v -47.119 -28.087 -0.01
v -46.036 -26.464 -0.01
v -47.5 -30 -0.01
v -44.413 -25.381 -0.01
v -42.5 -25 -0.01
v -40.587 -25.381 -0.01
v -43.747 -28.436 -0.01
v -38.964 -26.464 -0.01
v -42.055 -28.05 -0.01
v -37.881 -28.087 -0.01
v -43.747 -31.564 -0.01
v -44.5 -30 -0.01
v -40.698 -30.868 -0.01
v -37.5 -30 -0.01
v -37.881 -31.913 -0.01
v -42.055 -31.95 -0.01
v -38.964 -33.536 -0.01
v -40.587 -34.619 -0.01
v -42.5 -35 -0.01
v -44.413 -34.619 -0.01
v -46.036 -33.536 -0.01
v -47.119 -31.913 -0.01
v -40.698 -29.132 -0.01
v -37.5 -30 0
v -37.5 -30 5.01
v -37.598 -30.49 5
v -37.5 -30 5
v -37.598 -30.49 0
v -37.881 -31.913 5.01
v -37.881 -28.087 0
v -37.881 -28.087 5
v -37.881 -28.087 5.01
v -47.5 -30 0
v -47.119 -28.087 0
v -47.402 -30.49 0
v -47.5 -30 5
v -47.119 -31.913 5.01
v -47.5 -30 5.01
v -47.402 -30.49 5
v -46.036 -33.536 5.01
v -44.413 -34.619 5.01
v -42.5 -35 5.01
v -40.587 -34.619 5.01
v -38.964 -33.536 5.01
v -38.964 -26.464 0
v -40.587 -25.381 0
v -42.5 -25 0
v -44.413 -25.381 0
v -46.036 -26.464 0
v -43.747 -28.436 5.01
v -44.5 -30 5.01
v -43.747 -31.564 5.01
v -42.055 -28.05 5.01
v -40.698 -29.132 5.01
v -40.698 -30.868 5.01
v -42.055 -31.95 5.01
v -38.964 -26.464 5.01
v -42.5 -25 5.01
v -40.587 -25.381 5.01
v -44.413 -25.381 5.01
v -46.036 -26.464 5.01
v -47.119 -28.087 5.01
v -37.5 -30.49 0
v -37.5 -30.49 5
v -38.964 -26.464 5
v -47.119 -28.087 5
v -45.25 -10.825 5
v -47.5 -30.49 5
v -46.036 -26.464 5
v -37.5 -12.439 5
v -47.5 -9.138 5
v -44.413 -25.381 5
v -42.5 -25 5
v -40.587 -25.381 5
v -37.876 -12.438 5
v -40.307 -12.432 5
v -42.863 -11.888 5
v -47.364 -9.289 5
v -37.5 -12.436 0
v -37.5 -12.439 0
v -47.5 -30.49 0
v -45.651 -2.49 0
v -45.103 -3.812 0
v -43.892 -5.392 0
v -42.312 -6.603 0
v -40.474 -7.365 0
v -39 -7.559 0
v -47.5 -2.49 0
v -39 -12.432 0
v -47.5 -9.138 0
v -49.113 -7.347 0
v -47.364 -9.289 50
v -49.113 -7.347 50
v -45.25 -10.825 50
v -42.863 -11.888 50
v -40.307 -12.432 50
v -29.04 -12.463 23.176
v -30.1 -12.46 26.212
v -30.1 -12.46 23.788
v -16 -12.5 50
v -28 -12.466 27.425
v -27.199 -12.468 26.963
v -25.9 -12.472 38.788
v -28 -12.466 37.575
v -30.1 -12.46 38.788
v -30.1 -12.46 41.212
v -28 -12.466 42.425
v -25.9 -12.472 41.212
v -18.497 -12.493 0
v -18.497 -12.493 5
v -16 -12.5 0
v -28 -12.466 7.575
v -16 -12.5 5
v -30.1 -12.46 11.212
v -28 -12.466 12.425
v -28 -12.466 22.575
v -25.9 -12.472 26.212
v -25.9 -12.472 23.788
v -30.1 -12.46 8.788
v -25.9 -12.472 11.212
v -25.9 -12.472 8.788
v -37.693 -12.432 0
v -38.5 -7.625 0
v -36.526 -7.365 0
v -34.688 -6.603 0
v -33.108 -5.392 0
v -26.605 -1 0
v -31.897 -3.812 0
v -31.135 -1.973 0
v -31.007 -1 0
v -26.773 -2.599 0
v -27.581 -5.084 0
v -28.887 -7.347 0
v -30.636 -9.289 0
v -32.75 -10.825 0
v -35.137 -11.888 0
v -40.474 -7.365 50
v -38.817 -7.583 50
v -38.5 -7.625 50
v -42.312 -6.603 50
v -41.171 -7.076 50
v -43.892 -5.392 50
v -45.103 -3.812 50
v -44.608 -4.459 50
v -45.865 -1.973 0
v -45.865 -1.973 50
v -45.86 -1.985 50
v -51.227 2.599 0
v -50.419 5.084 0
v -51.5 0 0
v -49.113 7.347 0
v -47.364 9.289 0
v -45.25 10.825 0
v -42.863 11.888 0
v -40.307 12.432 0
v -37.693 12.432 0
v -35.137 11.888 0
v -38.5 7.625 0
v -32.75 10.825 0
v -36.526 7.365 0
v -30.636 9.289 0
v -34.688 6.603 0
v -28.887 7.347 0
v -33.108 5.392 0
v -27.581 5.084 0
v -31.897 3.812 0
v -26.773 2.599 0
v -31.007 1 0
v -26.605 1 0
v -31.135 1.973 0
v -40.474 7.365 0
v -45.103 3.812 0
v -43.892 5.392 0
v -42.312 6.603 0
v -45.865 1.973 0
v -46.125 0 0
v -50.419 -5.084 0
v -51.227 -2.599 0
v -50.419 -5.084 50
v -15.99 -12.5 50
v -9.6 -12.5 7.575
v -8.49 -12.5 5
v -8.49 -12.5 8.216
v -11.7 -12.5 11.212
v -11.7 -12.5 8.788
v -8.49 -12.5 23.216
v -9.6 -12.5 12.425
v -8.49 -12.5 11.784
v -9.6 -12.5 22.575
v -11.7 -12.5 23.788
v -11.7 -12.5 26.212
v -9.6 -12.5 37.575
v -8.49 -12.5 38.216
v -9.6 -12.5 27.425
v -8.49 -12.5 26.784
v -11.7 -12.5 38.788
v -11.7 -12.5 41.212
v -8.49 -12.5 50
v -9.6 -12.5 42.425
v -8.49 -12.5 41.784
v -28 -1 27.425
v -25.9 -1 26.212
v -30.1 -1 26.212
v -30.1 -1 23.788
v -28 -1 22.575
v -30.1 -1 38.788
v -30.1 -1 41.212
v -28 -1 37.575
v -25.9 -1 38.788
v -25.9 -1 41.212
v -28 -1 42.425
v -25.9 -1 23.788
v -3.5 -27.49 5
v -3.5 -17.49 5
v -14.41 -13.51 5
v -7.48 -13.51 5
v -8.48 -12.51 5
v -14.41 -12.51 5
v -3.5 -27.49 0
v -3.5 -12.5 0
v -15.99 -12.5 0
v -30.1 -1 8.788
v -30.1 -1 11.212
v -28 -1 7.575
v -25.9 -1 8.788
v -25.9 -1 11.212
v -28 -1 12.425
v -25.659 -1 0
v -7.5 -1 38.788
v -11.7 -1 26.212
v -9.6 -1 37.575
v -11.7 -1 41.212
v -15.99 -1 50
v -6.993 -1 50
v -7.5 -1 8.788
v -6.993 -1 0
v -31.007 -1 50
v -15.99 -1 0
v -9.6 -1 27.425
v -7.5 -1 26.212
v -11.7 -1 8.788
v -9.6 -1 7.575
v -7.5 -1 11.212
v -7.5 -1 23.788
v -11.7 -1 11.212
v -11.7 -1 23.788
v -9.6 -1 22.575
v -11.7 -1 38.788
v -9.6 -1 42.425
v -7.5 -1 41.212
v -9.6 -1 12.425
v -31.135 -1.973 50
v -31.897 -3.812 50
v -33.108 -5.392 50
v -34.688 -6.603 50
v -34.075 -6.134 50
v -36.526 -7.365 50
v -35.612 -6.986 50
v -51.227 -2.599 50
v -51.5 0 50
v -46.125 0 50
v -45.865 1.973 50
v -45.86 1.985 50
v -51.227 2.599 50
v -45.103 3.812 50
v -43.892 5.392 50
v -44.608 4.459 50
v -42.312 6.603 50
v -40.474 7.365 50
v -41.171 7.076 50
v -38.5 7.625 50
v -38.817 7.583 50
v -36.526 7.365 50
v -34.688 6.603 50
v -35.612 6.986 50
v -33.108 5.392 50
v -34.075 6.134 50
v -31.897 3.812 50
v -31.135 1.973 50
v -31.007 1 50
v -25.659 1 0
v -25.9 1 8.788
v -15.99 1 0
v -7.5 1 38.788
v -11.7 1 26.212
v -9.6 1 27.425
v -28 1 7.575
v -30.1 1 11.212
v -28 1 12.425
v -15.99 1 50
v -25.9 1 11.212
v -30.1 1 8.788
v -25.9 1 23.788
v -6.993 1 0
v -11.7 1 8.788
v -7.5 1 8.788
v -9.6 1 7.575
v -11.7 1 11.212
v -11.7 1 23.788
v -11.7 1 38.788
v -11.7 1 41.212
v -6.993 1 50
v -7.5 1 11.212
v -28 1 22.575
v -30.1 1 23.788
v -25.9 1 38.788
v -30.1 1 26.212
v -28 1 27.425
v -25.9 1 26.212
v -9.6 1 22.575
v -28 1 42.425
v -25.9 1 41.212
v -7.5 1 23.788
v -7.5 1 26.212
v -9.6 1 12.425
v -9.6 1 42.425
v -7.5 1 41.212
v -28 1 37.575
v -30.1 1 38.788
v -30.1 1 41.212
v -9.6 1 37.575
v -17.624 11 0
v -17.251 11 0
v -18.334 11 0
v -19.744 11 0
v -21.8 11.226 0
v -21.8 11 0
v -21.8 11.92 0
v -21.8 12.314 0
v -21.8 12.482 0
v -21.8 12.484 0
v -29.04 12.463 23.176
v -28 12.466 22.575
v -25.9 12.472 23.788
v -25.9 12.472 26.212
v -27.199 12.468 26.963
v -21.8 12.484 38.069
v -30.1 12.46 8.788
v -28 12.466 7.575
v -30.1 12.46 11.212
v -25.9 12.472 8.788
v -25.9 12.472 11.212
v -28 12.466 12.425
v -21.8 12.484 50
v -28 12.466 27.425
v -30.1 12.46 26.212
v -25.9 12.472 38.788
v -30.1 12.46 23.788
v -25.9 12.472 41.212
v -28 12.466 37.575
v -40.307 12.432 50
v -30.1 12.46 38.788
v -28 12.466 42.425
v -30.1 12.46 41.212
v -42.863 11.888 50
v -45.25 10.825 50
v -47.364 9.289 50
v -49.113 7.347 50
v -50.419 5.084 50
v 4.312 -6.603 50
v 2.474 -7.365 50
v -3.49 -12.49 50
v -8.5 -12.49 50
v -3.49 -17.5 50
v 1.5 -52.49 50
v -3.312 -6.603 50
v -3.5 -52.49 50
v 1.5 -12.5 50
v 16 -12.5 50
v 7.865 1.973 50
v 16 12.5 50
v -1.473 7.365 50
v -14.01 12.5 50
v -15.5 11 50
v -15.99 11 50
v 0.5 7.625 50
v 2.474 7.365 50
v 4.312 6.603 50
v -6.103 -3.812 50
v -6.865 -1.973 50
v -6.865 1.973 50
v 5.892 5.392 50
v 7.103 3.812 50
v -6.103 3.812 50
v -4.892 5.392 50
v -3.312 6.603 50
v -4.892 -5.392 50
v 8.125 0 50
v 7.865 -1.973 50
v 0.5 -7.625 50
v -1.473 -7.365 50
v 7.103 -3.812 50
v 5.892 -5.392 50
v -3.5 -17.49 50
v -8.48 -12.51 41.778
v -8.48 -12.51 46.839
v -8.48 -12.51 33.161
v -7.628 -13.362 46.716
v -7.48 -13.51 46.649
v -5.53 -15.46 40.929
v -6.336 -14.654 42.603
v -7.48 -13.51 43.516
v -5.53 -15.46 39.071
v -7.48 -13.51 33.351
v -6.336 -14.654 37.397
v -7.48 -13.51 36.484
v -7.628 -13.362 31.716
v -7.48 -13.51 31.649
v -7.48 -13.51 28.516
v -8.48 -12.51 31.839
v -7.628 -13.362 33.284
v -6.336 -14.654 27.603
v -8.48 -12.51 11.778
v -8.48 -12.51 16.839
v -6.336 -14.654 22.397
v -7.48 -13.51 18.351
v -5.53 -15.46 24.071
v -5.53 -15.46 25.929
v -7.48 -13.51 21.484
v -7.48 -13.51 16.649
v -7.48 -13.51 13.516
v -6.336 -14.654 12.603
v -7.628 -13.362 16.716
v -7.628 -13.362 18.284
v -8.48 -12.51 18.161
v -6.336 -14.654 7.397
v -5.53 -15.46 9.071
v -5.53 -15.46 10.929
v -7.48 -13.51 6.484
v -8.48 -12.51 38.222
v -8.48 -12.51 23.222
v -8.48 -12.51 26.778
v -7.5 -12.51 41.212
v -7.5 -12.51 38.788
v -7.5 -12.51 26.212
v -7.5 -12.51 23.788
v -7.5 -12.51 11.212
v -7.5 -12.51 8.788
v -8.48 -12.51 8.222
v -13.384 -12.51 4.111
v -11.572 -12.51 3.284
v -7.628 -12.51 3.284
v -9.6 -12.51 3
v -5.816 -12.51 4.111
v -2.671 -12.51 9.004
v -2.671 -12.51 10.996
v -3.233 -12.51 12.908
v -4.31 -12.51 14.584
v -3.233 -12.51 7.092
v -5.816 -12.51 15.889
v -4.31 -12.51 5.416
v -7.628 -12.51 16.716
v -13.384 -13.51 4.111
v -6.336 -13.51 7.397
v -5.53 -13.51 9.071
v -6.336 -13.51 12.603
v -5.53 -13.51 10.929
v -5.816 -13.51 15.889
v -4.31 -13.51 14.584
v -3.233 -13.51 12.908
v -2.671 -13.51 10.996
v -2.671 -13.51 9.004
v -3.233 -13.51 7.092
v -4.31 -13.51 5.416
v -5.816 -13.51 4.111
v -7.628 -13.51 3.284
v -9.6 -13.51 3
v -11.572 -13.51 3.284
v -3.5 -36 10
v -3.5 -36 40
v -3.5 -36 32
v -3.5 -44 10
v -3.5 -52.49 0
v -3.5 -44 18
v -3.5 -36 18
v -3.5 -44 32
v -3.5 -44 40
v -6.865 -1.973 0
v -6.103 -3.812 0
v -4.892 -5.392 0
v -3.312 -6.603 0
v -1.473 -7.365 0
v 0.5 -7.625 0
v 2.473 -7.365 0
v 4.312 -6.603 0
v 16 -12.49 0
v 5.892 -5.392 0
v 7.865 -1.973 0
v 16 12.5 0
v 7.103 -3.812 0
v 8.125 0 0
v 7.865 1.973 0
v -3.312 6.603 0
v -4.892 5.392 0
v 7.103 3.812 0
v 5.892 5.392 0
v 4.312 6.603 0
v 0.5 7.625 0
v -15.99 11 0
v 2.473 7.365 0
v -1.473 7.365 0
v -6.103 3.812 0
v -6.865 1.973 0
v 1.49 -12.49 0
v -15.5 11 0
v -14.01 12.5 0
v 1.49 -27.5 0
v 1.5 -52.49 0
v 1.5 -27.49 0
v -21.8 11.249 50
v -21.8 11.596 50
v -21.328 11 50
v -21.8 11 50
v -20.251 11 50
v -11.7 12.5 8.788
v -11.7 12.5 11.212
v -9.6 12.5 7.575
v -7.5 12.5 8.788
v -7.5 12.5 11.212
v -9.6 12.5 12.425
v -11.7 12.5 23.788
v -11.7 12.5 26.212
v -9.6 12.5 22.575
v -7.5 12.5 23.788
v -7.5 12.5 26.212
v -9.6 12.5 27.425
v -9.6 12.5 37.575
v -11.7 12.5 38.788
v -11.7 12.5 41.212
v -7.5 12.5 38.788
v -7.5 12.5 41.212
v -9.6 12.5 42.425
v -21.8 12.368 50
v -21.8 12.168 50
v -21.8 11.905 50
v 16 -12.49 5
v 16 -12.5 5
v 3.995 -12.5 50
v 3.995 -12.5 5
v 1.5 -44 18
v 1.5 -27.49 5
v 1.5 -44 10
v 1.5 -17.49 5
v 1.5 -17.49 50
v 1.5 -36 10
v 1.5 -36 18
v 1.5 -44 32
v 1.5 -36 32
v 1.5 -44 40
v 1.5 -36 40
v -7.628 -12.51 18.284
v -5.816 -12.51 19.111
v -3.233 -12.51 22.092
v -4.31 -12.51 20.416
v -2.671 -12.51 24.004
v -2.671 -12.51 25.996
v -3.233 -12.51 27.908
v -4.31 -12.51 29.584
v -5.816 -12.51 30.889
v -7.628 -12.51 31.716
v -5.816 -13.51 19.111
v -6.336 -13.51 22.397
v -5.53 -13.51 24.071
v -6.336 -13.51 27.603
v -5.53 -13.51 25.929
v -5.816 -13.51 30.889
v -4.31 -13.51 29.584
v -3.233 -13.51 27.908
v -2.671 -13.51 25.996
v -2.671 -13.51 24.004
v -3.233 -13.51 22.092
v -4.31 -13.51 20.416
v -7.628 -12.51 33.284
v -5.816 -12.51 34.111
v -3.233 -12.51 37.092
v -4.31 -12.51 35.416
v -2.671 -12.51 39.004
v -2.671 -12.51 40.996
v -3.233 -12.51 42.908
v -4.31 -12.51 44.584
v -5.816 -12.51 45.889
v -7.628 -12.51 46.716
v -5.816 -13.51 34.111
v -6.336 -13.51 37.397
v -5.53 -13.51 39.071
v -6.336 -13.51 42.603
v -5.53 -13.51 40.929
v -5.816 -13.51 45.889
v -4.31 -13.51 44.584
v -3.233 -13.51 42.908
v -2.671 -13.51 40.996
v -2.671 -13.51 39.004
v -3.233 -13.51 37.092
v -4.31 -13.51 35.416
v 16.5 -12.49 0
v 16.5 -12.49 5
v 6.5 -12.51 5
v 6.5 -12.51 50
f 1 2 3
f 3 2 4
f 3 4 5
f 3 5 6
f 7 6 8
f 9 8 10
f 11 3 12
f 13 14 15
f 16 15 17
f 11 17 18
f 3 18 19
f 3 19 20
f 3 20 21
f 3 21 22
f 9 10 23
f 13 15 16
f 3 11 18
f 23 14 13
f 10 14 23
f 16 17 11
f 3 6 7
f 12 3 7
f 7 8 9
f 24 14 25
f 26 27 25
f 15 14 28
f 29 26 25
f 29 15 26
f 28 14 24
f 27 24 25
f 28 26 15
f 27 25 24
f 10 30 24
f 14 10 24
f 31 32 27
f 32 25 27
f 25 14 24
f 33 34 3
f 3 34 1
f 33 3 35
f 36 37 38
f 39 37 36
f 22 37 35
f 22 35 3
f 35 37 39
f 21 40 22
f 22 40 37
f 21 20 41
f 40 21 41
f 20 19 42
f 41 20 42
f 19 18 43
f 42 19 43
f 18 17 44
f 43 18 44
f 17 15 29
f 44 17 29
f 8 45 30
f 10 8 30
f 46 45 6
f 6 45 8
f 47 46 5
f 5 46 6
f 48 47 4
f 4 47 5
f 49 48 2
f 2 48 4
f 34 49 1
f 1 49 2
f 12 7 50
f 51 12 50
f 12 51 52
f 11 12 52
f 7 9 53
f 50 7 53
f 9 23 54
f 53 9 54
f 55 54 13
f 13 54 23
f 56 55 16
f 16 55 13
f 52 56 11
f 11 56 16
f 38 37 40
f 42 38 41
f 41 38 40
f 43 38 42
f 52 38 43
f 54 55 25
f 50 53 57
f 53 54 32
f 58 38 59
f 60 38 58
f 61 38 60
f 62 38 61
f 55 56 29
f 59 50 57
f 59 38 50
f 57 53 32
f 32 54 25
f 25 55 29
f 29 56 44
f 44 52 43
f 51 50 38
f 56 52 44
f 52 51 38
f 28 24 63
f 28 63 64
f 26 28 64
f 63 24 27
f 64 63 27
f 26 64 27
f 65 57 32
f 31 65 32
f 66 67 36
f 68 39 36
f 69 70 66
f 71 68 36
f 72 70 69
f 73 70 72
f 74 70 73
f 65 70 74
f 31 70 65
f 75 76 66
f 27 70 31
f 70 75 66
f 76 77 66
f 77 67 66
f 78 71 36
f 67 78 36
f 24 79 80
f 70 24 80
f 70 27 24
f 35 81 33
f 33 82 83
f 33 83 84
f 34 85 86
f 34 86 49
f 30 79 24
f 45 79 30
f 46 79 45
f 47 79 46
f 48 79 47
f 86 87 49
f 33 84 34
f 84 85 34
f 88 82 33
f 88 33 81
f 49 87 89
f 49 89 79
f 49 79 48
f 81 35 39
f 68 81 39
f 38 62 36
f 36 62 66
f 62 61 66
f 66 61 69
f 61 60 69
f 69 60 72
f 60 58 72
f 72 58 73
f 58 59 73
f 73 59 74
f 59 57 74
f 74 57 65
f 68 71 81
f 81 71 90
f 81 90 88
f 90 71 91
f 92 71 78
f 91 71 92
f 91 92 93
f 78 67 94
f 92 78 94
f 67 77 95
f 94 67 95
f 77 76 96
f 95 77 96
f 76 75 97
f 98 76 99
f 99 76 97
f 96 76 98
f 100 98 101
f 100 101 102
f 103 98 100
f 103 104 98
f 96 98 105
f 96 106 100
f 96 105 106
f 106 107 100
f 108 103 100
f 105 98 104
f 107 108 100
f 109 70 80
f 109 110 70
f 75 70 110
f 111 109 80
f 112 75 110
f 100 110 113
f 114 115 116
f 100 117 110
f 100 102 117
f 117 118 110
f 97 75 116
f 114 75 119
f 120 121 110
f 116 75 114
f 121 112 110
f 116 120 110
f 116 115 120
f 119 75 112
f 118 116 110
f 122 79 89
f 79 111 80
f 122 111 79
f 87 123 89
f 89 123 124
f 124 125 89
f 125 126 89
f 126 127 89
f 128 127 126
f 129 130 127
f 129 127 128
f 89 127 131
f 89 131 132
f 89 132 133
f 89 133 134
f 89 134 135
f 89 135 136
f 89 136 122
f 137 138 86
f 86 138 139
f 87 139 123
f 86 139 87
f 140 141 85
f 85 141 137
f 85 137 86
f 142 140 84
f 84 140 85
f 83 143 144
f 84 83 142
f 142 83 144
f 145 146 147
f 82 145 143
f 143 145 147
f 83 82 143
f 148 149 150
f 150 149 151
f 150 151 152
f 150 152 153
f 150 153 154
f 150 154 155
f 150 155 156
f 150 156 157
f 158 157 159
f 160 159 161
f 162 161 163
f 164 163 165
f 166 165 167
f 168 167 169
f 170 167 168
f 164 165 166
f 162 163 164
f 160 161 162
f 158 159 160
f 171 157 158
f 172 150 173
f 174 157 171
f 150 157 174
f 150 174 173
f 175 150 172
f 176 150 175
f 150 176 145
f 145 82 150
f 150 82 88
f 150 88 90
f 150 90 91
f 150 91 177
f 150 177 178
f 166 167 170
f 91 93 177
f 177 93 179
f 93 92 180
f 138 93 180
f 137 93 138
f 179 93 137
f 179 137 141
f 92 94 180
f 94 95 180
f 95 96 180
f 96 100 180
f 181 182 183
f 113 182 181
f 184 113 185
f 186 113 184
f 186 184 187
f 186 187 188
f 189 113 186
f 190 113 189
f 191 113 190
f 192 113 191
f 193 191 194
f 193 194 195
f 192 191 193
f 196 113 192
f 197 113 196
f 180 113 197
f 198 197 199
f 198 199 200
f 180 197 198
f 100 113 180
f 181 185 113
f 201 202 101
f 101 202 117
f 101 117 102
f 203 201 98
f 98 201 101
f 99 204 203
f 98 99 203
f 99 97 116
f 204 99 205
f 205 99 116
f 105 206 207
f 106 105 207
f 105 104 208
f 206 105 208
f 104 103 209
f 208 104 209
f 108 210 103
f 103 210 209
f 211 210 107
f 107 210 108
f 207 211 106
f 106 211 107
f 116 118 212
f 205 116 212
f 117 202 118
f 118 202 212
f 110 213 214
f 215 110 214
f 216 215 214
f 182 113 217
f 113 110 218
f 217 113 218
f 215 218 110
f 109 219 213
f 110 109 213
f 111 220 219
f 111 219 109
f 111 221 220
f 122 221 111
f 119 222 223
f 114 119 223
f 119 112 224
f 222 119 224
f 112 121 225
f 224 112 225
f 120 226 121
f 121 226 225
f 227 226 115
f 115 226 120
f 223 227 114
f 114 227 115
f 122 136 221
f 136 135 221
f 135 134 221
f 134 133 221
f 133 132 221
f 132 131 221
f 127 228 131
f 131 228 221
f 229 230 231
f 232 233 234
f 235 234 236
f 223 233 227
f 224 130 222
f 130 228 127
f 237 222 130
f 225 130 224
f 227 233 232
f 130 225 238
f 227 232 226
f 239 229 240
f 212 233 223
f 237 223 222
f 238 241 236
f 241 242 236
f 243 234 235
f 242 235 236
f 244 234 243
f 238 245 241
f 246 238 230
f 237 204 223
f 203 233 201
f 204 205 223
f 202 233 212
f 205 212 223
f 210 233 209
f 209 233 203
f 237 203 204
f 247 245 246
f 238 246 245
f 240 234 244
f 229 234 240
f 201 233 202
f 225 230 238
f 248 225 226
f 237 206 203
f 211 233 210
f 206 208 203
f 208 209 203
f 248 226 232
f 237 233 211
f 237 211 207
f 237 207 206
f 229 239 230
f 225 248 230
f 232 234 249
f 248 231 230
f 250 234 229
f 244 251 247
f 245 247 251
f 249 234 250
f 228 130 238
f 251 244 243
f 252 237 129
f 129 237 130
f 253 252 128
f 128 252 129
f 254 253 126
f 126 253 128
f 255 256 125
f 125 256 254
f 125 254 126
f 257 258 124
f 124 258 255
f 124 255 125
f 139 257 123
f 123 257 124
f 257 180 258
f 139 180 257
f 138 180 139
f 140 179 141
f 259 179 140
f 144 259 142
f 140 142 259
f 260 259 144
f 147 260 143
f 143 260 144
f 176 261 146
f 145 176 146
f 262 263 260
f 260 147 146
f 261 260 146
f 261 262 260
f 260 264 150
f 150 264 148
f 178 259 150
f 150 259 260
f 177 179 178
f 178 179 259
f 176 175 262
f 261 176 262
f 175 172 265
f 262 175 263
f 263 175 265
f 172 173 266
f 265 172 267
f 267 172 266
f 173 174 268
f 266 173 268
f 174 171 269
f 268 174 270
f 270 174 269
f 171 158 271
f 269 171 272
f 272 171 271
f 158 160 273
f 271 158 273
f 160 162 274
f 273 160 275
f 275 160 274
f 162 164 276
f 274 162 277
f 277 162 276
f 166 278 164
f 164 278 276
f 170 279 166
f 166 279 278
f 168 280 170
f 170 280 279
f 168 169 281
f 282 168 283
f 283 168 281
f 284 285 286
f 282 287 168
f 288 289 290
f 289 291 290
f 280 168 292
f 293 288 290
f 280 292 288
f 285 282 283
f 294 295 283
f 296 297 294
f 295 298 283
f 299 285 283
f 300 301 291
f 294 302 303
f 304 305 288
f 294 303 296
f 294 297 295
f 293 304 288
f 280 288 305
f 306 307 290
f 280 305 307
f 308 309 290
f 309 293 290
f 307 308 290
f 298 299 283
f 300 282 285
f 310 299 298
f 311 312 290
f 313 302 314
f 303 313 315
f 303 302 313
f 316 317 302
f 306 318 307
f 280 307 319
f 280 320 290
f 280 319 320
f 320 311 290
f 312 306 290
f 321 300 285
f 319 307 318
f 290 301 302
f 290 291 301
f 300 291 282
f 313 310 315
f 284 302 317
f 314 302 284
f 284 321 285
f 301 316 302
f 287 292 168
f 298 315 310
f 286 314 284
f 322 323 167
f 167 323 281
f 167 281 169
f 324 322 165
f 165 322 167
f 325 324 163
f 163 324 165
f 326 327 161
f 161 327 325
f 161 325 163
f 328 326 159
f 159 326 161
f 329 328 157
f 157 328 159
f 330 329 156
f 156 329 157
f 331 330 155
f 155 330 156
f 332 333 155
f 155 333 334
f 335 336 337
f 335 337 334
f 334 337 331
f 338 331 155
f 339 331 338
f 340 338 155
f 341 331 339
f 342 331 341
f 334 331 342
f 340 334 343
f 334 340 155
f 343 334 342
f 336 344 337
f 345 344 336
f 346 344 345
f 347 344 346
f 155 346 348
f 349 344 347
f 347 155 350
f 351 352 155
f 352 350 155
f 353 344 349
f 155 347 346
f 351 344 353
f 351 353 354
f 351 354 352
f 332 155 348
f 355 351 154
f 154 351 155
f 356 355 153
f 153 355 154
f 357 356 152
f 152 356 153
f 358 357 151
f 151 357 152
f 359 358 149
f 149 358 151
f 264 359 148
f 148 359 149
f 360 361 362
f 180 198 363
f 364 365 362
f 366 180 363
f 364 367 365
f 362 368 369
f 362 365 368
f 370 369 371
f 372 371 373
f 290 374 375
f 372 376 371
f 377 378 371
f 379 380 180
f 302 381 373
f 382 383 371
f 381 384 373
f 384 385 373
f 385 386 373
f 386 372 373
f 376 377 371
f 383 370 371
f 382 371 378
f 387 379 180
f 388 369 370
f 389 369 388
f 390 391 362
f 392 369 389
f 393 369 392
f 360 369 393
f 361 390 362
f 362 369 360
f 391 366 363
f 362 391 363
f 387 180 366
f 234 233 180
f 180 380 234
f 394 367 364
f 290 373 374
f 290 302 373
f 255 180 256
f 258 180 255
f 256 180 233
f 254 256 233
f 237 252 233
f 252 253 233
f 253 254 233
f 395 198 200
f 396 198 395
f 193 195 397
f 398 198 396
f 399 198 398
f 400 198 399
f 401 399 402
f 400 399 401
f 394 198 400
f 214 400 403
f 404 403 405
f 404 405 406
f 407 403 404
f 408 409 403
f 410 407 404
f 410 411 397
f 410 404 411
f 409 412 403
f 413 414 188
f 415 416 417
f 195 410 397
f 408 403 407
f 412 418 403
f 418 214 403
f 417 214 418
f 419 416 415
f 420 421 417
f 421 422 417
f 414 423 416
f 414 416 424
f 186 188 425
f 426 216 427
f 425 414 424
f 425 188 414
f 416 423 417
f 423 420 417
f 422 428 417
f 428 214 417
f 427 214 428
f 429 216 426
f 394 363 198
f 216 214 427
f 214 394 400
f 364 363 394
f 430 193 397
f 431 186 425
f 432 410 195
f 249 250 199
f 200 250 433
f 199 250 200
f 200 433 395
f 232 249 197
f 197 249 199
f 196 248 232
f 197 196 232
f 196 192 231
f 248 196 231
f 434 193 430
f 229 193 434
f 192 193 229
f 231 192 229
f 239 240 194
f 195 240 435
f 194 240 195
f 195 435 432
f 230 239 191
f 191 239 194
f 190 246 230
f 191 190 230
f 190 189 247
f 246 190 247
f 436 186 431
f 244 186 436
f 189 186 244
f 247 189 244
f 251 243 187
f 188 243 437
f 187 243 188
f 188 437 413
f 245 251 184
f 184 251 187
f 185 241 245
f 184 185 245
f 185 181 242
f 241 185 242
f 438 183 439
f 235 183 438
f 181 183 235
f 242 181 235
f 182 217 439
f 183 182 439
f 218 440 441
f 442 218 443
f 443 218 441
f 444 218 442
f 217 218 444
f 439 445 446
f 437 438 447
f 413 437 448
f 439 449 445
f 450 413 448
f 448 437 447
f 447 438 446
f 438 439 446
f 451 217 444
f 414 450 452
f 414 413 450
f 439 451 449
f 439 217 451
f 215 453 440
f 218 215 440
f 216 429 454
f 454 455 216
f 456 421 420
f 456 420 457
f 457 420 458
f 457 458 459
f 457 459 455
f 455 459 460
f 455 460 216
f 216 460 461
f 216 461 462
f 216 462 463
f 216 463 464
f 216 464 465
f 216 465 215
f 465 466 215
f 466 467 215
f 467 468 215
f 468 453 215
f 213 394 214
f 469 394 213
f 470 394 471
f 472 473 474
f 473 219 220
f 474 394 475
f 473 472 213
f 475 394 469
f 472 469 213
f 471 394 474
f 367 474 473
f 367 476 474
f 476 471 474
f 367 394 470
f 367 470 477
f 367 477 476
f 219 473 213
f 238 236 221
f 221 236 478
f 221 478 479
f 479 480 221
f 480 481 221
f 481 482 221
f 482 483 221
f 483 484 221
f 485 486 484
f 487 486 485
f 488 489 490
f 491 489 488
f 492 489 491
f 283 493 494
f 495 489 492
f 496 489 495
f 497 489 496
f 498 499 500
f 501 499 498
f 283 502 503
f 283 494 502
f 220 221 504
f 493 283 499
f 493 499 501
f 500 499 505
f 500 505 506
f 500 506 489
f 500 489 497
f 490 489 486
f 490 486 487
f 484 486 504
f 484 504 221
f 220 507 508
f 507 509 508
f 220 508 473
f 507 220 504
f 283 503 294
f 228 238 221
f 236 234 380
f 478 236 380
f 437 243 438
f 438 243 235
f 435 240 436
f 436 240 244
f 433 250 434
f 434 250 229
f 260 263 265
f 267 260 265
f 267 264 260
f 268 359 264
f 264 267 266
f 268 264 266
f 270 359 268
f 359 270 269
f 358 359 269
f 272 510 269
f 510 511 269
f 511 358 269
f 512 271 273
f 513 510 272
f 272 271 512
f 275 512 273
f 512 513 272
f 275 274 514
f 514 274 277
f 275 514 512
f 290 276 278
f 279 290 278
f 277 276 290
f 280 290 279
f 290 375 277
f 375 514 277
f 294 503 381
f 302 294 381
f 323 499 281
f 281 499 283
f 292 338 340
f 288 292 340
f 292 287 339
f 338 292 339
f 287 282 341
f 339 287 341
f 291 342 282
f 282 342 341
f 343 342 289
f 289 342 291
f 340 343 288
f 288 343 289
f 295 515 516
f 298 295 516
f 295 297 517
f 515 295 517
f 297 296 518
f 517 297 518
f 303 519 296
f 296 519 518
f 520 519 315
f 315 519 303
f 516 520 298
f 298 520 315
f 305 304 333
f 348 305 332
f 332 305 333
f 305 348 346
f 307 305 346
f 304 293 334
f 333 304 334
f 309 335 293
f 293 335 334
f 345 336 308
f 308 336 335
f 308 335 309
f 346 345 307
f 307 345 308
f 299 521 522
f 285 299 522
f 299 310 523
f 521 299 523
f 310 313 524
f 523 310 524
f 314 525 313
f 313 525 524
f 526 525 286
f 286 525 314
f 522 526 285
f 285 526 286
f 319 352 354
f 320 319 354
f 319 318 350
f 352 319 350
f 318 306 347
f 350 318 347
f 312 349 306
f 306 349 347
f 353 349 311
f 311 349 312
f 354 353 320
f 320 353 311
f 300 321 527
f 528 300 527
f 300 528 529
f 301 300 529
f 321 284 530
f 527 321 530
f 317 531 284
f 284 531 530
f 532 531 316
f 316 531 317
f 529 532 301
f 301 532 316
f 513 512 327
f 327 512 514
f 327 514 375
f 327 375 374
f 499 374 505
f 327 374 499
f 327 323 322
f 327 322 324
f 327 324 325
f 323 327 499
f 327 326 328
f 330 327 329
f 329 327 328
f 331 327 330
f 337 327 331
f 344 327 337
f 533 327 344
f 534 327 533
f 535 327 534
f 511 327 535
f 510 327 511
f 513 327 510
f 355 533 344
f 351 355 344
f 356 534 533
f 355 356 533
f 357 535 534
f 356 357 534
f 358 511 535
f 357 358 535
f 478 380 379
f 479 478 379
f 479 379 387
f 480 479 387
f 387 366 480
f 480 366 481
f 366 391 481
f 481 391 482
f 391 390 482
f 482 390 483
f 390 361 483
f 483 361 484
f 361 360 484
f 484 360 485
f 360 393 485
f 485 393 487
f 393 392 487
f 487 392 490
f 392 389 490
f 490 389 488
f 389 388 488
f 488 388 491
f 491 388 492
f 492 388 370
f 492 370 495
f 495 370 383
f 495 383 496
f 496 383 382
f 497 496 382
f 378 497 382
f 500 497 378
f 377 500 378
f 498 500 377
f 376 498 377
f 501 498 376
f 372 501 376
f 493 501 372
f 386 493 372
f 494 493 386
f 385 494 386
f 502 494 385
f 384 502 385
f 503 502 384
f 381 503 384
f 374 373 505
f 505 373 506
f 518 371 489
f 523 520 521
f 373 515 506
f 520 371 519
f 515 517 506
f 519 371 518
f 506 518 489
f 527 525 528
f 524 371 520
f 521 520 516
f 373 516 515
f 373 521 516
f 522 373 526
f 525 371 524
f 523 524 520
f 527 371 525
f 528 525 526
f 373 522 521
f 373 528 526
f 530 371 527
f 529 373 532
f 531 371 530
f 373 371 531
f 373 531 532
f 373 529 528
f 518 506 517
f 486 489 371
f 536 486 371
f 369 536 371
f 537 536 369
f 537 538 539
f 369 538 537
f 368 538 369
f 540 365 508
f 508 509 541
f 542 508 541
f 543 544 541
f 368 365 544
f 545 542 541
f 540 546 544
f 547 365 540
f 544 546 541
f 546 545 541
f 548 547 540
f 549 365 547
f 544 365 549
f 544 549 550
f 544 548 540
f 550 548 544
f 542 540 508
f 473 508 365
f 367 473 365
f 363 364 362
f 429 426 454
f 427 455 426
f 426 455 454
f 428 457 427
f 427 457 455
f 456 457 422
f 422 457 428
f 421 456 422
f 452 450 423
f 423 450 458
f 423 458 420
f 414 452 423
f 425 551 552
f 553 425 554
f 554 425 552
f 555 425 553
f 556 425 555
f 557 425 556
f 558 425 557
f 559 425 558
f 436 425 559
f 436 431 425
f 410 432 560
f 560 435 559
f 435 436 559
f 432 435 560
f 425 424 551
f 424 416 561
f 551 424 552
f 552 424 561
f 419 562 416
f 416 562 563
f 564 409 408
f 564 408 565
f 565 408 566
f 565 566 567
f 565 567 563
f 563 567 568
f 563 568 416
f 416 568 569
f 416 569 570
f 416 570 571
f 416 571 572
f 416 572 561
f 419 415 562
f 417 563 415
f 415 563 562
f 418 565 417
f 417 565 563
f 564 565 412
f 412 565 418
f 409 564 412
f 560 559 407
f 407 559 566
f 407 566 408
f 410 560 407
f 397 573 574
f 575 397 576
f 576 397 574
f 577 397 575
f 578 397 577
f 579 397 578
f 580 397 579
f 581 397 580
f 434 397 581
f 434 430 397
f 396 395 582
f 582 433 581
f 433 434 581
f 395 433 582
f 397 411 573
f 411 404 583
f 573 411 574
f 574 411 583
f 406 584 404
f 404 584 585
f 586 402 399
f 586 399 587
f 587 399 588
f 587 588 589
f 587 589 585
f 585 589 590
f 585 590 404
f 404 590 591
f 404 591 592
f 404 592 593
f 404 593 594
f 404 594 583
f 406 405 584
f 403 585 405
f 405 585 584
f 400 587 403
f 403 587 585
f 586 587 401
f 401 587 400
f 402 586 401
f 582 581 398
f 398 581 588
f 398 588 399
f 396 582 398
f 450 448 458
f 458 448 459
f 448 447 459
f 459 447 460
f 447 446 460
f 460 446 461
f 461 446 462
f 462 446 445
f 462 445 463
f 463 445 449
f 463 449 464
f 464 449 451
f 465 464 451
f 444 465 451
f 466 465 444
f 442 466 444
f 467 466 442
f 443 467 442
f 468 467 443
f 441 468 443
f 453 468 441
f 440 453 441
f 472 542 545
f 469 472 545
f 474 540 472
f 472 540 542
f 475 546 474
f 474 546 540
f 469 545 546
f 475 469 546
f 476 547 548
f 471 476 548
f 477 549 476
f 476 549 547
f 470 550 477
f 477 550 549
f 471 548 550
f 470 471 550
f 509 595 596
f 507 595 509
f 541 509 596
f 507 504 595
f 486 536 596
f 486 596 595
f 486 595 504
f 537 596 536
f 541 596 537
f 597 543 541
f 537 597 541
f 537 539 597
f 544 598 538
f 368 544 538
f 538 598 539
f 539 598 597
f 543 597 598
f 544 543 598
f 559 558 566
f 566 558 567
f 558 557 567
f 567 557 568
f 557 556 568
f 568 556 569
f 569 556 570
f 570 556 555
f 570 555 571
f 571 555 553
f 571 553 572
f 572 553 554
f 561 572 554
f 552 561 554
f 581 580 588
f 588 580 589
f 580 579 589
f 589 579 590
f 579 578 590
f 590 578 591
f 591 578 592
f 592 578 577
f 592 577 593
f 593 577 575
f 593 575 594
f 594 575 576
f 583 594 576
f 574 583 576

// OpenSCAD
//**************************************************
// Quick-Fit carriage for Printrbot
//
// Copyright (c) 2012, Andrew Dalgleish <andrew+github@ajd.net.au>
// Copyright (c) 2013, Mathieu Brun 
//
// Permission to use, copy, modify, and/or distribute this software for any
// purpose with or without fee is hereby granted, provided that the above
// copyright notice and this permission notice appear in all copies.
// 
// THE SOFTWARE IS PROVIDED "AS IS" AND THE AUTHOR DISCLAIMS ALL WARRANTIES
// WITH REGARD TO THIS SOFTWARE INCLUDING ALL IMPLIED WARRANTIES OF
// MERCHANTABILITY AND FITNESS. IN NO EVENT SHALL THE AUTHOR BE LIABLE FOR
// ANY SPECIAL, DIRECT, INDIRECT, OR CONSEQUENTIAL DAMAGES OR ANY DAMAGES
// WHATSOEVER RESULTING FROM LOSS OF USE, DATA OR PROFITS, WHETHER IN AN
// ACTION OF CONTRACT, NEGLIGENCE OR OTHER TORTIOUS ACTION, ARISING OUT OF
// OR IN CONNECTION WITH THE USE OR PERFORMANCE OF THIS SOFTWARE.
// 
//
// This is modelled as fitted, with the top-front edge of the Carriage() module on the X-axis.
//
// Each of the OpenSCAD axes is parallel with the Printrbot axes with the same name, 
// except the sign is the opposite for X and Y.
//
// OpenSCAD X +ve is towards the left of the Printrbot.
// OpenSCAD Y +ve is towards the front of the Printrbot.
// OpenSCAD Z +ve is towards the top of the Printrbot.

// printable - set to 1 from the command-line
printable	= 1;

// mo = manifold overlap
// this is a small overlap used to force the model to be manifold
mo	= 0.01;

// constant used to calculate radius for hex holes
da6		= 1/cos(180/6)/2;

// size of horizontal plate
base_plate	= [50, 40, 5];
block_size		= [50, 25, 32];	// ajd - make wider to seperate the groove from the bearing

carriage_hole_offset = 0;
// carriage parameters
carriage_hole_spacing	= 15;
carriage_holes_top = [-carriage_hole_spacing + carriage_hole_offset, 0 + carriage_hole_offset, carriage_hole_spacing + carriage_hole_offset];
carriage_holes_bottom = [-carriage_hole_spacing + carriage_hole_offset, 0 + carriage_hole_offset, carriage_hole_spacing + carriage_hole_offset];
carriage_holes_z	= [-25.600, -44];
carriage_hole_d		= 4.2;
carriage_nut_d		= 7.95;
carriage_nut_h1		= 3;
pneufit_d		= 9.7;
mounting_plate_hole_spacing = 13;

// locating lug, dimensions from PB files
groove_zo	= 30;
groove_z	= 7.8;
groove_y1	= 1.5;		// groove is deeper than the lug
groove_y2	= 1;

// bracket parameters
extruder_offset	= [0, 25, 0];

// integrated fan parameters
fan_width = 40;
fan_holder = [fan_width + 6, 20, fan_width + 15];
inner_hole = [25,15,12];
bolt_distance = 32/2;
bolt_depth = 20+mo;
top_angle = -55;
bottom_angle = -45;
beak_angle = [-60,0,0];

// LM8UU 8x15x24
// You may need to adjust bearing_od
// Initial print 15.2 (0.4mm layer, 0.5mm nozzle) measured 14.2
bearing_clr	= 10.2;
bearing_id	= 8;
bearing_od	= 15.25;
bearing_w	= 24;

module	LocatingGroove(X, Y) {
	Z	= groove_z;
	ZO	= groove_zo;

	translate([-X/2 -mo, -Y, -Z -ZO])
		rotate([0, 90, 0])
		linear_extrude(height=X +mo*2, convexity=2)
		polygon([[0, 0], [0, Y +mo], [-Z, Y+mo], [-Z +Y, 0]]);
}

module Carriage() {

	

	rod_offset	= 15.5;
	rod_spacing	= 39; // or 38 ?

	gap1_y		= 2;


	belt_distance_from_rod = 40;
	x_stop_distance_from_rod = 30;

	x_stop		= [5, 28, 10];
	x_stop_offset	= [-block_size[0]/2, -x_stop[1] -block_size[1] +mo + 10, -rod_offset +1 - rod_spacing -x_stop[2]];

	flange		= [block_size[0], 40, 5];
	flange_offset	= [-block_size[0]/2, -flange[1] -block_size[1] +mo, -rod_offset +1 -flange[2]];	// from PB files, top of flange is 1mm above rod center

	// FIXME - check bottom of flange!
	belt		= [8, 8, flange[2] +mo*2];

	belt_offset1	= [-block_size[0]/2 +flange[0] -belt[0] -10, -block_size[1]/2 - belt_distance_from_rod -belt[1]/2, flange_offset[2] -mo];
	belt_offset2	= [-block_size[0]/2 + 10, -block_size[1]/2 - belt_distance_from_rod -belt[1]/2, flange_offset[2] -mo];

	gusset1_x	= 5;
	gusset1_yz	= 15;

	gusset2_x	= flange[0];
	gusset2_yz	= 5;

	gusset3_x	= 5;
	gusset3_yz	= 15;

	gusset4_x	= flange[0];
	gusset4_yz	= 5;

	gusset5_z	= flange[2];
	gusset5_xy	= block_size[0] - flange[0];

	mirror()
	rotate(printable ? [0, 270, 0] : [0, 0, 0])
	translate(printable ? [block_size[0]/2, block_size[1]/2, block_size[2]/2] : [0, 0, 0])
	difference() {
		union() {
			// main body, top rod
			translate([-block_size[0]/2, -block_size[1], -block_size[2]])
				cube(block_size);

			// main body, bottom rod
			hull() {
				translate([-block_size[0]/2, -block_size[1], -block_size[2]])
					cube([block_size[0], block_size[1], mo]);
				translate([-block_size[0]/2, -block_size[1]/2, -block_size[2]/2 -rod_spacing])
					rotate([0, 90, 0]) cylinder(r=block_size[1]/2, h=block_size[0]);
			}

			// x endstop
			translate(x_stop_offset) cube(x_stop);
			translate([-block_size[0]/2 -mo, -block_size[1]/2 - x_stop_distance_from_rod, -rod_offset-rod_spacing - bearing_id/2])
				rotate([0, 90, 0]) cylinder(r=x_stop[2]/2,h=x_stop[0] + +mo*2);

			// belt flange
			translate(flange_offset) 
				cube(flange);

			// top right gusset
			translate([-block_size[0]/2, -block_size[1] -gusset1_yz, flange_offset[2] +flange[2] -mo])
			rotate([0, 90, 0]) linear_extrude(height=gusset1_x, convexity=1)
				polygon([[0, 0], [0, gusset1_yz+mo], [-gusset1_yz -mo, gusset1_yz +mo]]);

			// top wide gusset
			translate([-block_size[0]/2, -block_size[1] -gusset2_yz, flange_offset[2] +flange[2] -mo])
			rotate([0, 90, 0]) linear_extrude(height=gusset2_x, convexity=1)
				polygon([[0, 0], [0, gusset2_yz +mo], [-gusset2_yz -mo, gusset2_yz -mo]]);

			// bottom right gusset
			translate([-block_size[0]/2, -block_size[1] -gusset3_yz, flange_offset[2] +mo])
			rotate([0, 90, 0]) linear_extrude(height=gusset3_x, convexity=1)
				polygon([[0, 0], [0, gusset3_yz+mo], [gusset3_yz +mo, gusset3_yz +mo]]);

			// bottom wide gusset
			translate([-block_size[0]/2, -block_size[1] -gusset4_yz, flange_offset[2] +mo])
			rotate([0, 90, 0]) linear_extrude(height=gusset4_x, convexity=1)
				polygon([[0, 0], [0, gusset4_yz+mo], [gusset4_yz +mo, gusset4_yz +mo]]);

			

		}

		// show top rod for assembly
		#translate([-block_size[0]/2 -mo, -block_size[1]/2, -rod_offset])
			rotate([0, 90, 0]) cylinder(r=bearing_id/2, h=block_size[0] +mo*2);
		#translate([-block_size[0]/2 -mo, -block_size[1]/2, -rod_offset -rod_spacing])
			rotate([0, 90, 0]) cylinder(r=bearing_id/2, h=block_size[0] +mo*2);

		// clamp gap
		translate([-block_size[0]/2 -mo, -block_size[1]/2 -gap1_y/2, -rod_offset -rod_spacing])
			cube([block_size[0] +mo*2, gap1_y, rod_spacing]);

		// top rod bearings
		translate([-block_size[0]/2 -mo, -block_size[1]/2, -rod_offset])
			rotate([0, 90, 0]) cylinder(r=bearing_od/2, h=block_size[0] +mo*2);

	

		// bottom rod bearing
		translate([-block_size[0]/2 - mo, -block_size[1]/2, -rod_offset -rod_spacing])
			rotate([0, 90, 0]) cylinder(r=bearing_od/2, h=block_size[0] +mo*2);

		// x end stop screw hole
		translate([-block_size[0]/2 - 2* mo, -block_size[1]/2 - x_stop_distance_from_rod, -rod_offset-rod_spacing - bearing_id/2])
			rotate([0, 90, 0]) cylinder(r=2,h=x_stop[0] + mo*4);

		// bolt holes, top row
		#for (hx = carriage_holes_top) translate([hx, -block_size[1] -mo, carriage_holes_z[0]]) rotate([-90, 0, 0]) {
			cylinder(r=carriage_hole_d *da6, h=block_size[1]+mo*2, $fn=6);
			translate([0,0,-1])
			cylinder(r=7, h=1);
			translate([0,0,-4])
			cylinder(r=carriage_nut_d/2+0.2, h=3);

		}

		// bolt holes, bottom row
		#for (hx = carriage_holes_bottom) translate([hx, -block_size[1] -mo, carriage_holes_z[1]]) rotate([-90, 0, 0]) {
			cylinder(r=carriage_hole_d *da6, h=block_size[1]+mo*2, $fn=6);
		}

		// belt hole
		translate(belt_offset1) cube(belt);
		translate(belt_offset2) cube(belt);

		// locating groove
		LocatingGroove(X=block_size[0], Y=groove_y1);
	}
}

module Bracket() {
	base		= base_plate;

	// main vertical plate clamped against carriage
	// outer edge is flat
	plate1		= [50, 5, 55];
	
	rotate(printable ? [0, 180, 0] : [0, 0, 0])

	difference() {
		union() {
			// horizontal plate
			translate([-base[0]/2, 0, -base[2]]) cube(base);

			// vertical plate
			translate([-plate1[0]/2, 0, -plate1[2]])
				cube(plate1);

			// add locating lug
			LocatingGroove(X=plate1[0], Y=groove_y2);

			// flange
			translate([plate1[0]/2-5,plate1[1]-mo,-base[2]+mo])
				rotate([0, 90, 0]) 
					linear_extrude(height=5, convexity=1)
						polygon([[0, 0], [0,,base[1]-plate1[1] +mo], [plate1[2]-base[2]+mo, 0]]);

			translate([-plate1[0]/2,plate1[1]-mo,-base[2]+mo])
				rotate([0, 90, 0]) 
					linear_extrude(height=5, convexity=1)
						polygon([[0, 0], [0,base[1]-plate1[1] +mo], [plate1[2]-base[2]+mo, 0]]);

		}

		translate([0,extruder_offset[1],-base[2]*2+mo])
			#cylinder(r=pneufit_d/2, h = base[2] + 5+2*mo);

		translate([block_size[0]/2-5-mo,5,-60])
			cube([30,30,40]);

		// bracket-carriage mounting holes
		for (X = carriage_holes_top) {
			// mounting holes
			#translate([X, -mo, carriage_holes_z[0]]) rotate([-90, 0, 0])
				cylinder(r=carriage_hole_d *da6, h=plate1[1] +mo*2, $fn=6);
			//#translate([X, -mo+4, carriage_holes_z[0]]) rotate([-90, 0, 0])
			//	cylinder(r=carriage_nut_d/2, h=carriage_nut_h1, $fn=6);
		}

		// bracket-carriage mounting holes
		for (X = carriage_holes_bottom) {
			// mounting holes
			#translate([X, -mo, carriage_holes_z[1]]) rotate([-90, 0, 0])
				cylinder(r=carriage_hole_d *da6, h=plate1[1] +mo*2, $fn=6);
			//#translate([X, -mo+4, carriage_holes_z[1]]) rotate([-90, 0, 0])
			//	cylinder(r=carriage_nut_d/2, h=carriage_nut_h1, $fn=6);
		}

		// hotend mount holes
		#translate([mounting_plate_hole_spacing, extruder_offset[1], -base[2] - 1])
			cylinder(r=carriage_hole_d * da6, h=base[2] + 2, $fn=6);
		#translate([-mounting_plate_hole_spacing, extruder_offset[1], -base[2] - 1])
			cylinder(r=carriage_hole_d * da6, h=base[2] + 2, $fn=6);
	}
}

module HotEndMount() {
	base		= base_plate;

	translate(printable ? [60, 0, -5] : [0, 0, -2])
	difference() {
		// plate		
		translate([-base[0]/2 + 6, 6, -base[2]-13]) 
			cube([base_plate[0]-12,base_plate[1]-7,11]);			

		// extruder hole
		translate([0, extruder_offset[1], -base[2]-10+5.6+mo])
			cylinder(r=8,h=4+2*mo);
		translate([-8, extruder_offset[1], -base[2]-10+5.6+mo])
			cube([16,20,4+2*mo]);
		
		translate([0, extruder_offset[1], -base[2]-10+0.5-mo])
			cylinder(r=6,h=5.5+3*mo);
		translate([-6, extruder_offset[1], -base[2]-10+0.5-mo])
			cube([12,20,5.5+3*mo]);

		translate([0, extruder_offset[1], -base[2]-10-4+mo])
			cylinder(r=8,h=4+2*mo);
		translate([-8, extruder_offset[1], -base[2]-10-4+mo])
			cube([16,20,4+2*mo]);

		// hotend mount holes
		#translate([mounting_plate_hole_spacing, extruder_offset[1], - base[2] - 7-3.5])
			cylinder(r=carriage_hole_d * da6, h=10 + mo*2, $fn=6);
		#translate([mounting_plate_hole_spacing, extruder_offset[1], - base[2] - 10-4 - mo])
			cylinder(r=carriage_nut_d/2, h=carriage_nut_h1, $fn=6);

		#translate([-mounting_plate_hole_spacing, extruder_offset[1], -base[2] - 7 - 3.5])
			cylinder(r=carriage_hole_d * da6, h=10 + mo*2, $fn=6);
		#translate([-mounting_plate_hole_spacing, extruder_offset[1], - base[2] - 10-4 - mo])
			cylinder(r=carriage_nut_d/2, h=carriage_nut_h1, $fn=6);
	}
}


module IntegratedFan()
{	
	beak_difference = [35,10];

	translate(printable ? [-5, 0, -5] : [0, 0, 0])
	union()
	{
		translate([(55-fan_holder[0])/2,0,0])
		difference()
		{
			union()
			{
				// main body
				cube(fan_holder);

				// beak
				hull()
				{
					translate([beak_difference[0]/2,beak_difference[1]/2+12,fan_holder[2]-mo+20])
					rotate(beak_angle)
						cube([fan_holder[0]-beak_difference[0],fan_holder[1]-beak_difference[1],mo]);
		
					translate([0,0,fan_holder[2]-mo])
						cube([fan_holder[0],fan_holder[1],mo]);
				}

				// mounting plate
				translate([0,0,-3+mo])
					cube([fan_holder[0],50,3]);
			
				translate([0,0,-3+mo])
					cube([fan_holder[0],20,3]);
			
				translate([0,0,-mo])
					cube([fan_holder[0],50,3]);
			}

			// beak
			hull()
			{
				translate([(beak_difference[0]+4)/2,18,fan_holder[2]-mo+20])
				rotate(beak_angle)
					cube([fan_holder[0]-beak_difference[0]-4,fan_holder[1]-13,mo]);
		
				translate([fan_holder[0]/2 - inner_hole[0]/2,fan_holder[1]/2 - inner_hole[1]/2,fan_holder[2]-mo])
					cube([inner_hole[0],inner_hole[1],mo]);
			}

			// fan hole
			translate([fan_holder[0]/2,0-mo,fan_holder[2]/2])
				rotate([-90,0,0])
					cylinder(r= fan_width/2, h=inner_hole[1] + (fan_holder[1]-inner_hole[1])/2);

			// flow exit hole
			translate([fan_holder[0]/2 - inner_hole[0]/2,fan_holder[1]/2 - inner_hole[1]/2,fan_holder[2]-inner_hole[2]+mo])
					cube(inner_hole);

			// fan mounting holes
			for (X = [	[fan_holder[0]/2 - bolt_distance,bolt_depth,fan_holder[2]/2+ bolt_distance],
							[fan_holder[0]/2 + bolt_distance,bolt_depth,fan_holder[2]/2+ bolt_distance],
							[fan_holder[0]/2 - bolt_distance,bolt_depth,fan_holder[2]/2- bolt_distance],
							[fan_holder[0]/2 + bolt_distance,bolt_depth,fan_holder[2]/2- bolt_distance]]) {
				#translate(X)
					rotate([90,0,0])
					{
						cylinder(r=carriage_hole_d * da6, h=bolt_depth + mo*2, $fn=6);
						
						translate([0,0,-2])
						#cylinder(r=carriage_nut_d/2, h=3, $fn=6);	
					}
			}
					

			// mounting holes
			#translate([mounting_plate_hole_spacing + fan_holder[0]/2, 40, -5])
			{
				cylinder(r=carriage_hole_d * da6, h=6+2*mo, $fn=6);
				translate([0,0,7])
					cylinder(r=7+mo, h=1);

				translate([0,0,4+mo])
					cylinder(r=4.5, h=3);
			}

			#translate([-mounting_plate_hole_spacing + fan_holder[0]/2, 40, -5])
			{
				cylinder(r=carriage_hole_d * da6, h=6+2*mo, $fn=6);
				translate([0,0,7])
					cylinder(r=7+mo, h=1);

				translate([0,0,4+mo])
					cylinder(r=4.5, h=3);
			}

			// hole for pneufit
			translate([fan_holder[0]/2-12/2,fan_holder[1]+mo,-5])
				cube([12,50-fan_holder[1],10+2*mo]);
		}
	}
}

module HotEnd(forDifference=0)
{
	hotend_height = 70;
	union() {
		difference() {
			cylinder(r= 8, h=hotend_height);
			translate([0,0,hotend_height-10])
				cylinder(r= 9, h=5.5);
		}
		cylinder(r= 6, h=hotend_height);
	
		translate([0,0,hotend_height - 18 - 32])
			cylinder(r= 12.5, h=32);			

		rotate([0,0,-90])
			translate([-16,-10,20])
				cube([31,35,31]);
	}
}

module	show_assembly(exploded=0) {
	gap	= 20;

	translate(exploded ? [0, -gap, 0] : [0, 0, 0])
		Carriage();

	Bracket();

	HotEndMount();

	translate([extruder_offset[0],extruder_offset[1], -70- base_plate[2]-2])
		#HotEnd();

	
	translate([-27.5,65,5])
		rotate([180,0,0])
			IntegratedFan();
}

//show_assembly(exploded=0);
//IntegratedFan();
//Bracket();
//HotEndMount();
Carriage();
